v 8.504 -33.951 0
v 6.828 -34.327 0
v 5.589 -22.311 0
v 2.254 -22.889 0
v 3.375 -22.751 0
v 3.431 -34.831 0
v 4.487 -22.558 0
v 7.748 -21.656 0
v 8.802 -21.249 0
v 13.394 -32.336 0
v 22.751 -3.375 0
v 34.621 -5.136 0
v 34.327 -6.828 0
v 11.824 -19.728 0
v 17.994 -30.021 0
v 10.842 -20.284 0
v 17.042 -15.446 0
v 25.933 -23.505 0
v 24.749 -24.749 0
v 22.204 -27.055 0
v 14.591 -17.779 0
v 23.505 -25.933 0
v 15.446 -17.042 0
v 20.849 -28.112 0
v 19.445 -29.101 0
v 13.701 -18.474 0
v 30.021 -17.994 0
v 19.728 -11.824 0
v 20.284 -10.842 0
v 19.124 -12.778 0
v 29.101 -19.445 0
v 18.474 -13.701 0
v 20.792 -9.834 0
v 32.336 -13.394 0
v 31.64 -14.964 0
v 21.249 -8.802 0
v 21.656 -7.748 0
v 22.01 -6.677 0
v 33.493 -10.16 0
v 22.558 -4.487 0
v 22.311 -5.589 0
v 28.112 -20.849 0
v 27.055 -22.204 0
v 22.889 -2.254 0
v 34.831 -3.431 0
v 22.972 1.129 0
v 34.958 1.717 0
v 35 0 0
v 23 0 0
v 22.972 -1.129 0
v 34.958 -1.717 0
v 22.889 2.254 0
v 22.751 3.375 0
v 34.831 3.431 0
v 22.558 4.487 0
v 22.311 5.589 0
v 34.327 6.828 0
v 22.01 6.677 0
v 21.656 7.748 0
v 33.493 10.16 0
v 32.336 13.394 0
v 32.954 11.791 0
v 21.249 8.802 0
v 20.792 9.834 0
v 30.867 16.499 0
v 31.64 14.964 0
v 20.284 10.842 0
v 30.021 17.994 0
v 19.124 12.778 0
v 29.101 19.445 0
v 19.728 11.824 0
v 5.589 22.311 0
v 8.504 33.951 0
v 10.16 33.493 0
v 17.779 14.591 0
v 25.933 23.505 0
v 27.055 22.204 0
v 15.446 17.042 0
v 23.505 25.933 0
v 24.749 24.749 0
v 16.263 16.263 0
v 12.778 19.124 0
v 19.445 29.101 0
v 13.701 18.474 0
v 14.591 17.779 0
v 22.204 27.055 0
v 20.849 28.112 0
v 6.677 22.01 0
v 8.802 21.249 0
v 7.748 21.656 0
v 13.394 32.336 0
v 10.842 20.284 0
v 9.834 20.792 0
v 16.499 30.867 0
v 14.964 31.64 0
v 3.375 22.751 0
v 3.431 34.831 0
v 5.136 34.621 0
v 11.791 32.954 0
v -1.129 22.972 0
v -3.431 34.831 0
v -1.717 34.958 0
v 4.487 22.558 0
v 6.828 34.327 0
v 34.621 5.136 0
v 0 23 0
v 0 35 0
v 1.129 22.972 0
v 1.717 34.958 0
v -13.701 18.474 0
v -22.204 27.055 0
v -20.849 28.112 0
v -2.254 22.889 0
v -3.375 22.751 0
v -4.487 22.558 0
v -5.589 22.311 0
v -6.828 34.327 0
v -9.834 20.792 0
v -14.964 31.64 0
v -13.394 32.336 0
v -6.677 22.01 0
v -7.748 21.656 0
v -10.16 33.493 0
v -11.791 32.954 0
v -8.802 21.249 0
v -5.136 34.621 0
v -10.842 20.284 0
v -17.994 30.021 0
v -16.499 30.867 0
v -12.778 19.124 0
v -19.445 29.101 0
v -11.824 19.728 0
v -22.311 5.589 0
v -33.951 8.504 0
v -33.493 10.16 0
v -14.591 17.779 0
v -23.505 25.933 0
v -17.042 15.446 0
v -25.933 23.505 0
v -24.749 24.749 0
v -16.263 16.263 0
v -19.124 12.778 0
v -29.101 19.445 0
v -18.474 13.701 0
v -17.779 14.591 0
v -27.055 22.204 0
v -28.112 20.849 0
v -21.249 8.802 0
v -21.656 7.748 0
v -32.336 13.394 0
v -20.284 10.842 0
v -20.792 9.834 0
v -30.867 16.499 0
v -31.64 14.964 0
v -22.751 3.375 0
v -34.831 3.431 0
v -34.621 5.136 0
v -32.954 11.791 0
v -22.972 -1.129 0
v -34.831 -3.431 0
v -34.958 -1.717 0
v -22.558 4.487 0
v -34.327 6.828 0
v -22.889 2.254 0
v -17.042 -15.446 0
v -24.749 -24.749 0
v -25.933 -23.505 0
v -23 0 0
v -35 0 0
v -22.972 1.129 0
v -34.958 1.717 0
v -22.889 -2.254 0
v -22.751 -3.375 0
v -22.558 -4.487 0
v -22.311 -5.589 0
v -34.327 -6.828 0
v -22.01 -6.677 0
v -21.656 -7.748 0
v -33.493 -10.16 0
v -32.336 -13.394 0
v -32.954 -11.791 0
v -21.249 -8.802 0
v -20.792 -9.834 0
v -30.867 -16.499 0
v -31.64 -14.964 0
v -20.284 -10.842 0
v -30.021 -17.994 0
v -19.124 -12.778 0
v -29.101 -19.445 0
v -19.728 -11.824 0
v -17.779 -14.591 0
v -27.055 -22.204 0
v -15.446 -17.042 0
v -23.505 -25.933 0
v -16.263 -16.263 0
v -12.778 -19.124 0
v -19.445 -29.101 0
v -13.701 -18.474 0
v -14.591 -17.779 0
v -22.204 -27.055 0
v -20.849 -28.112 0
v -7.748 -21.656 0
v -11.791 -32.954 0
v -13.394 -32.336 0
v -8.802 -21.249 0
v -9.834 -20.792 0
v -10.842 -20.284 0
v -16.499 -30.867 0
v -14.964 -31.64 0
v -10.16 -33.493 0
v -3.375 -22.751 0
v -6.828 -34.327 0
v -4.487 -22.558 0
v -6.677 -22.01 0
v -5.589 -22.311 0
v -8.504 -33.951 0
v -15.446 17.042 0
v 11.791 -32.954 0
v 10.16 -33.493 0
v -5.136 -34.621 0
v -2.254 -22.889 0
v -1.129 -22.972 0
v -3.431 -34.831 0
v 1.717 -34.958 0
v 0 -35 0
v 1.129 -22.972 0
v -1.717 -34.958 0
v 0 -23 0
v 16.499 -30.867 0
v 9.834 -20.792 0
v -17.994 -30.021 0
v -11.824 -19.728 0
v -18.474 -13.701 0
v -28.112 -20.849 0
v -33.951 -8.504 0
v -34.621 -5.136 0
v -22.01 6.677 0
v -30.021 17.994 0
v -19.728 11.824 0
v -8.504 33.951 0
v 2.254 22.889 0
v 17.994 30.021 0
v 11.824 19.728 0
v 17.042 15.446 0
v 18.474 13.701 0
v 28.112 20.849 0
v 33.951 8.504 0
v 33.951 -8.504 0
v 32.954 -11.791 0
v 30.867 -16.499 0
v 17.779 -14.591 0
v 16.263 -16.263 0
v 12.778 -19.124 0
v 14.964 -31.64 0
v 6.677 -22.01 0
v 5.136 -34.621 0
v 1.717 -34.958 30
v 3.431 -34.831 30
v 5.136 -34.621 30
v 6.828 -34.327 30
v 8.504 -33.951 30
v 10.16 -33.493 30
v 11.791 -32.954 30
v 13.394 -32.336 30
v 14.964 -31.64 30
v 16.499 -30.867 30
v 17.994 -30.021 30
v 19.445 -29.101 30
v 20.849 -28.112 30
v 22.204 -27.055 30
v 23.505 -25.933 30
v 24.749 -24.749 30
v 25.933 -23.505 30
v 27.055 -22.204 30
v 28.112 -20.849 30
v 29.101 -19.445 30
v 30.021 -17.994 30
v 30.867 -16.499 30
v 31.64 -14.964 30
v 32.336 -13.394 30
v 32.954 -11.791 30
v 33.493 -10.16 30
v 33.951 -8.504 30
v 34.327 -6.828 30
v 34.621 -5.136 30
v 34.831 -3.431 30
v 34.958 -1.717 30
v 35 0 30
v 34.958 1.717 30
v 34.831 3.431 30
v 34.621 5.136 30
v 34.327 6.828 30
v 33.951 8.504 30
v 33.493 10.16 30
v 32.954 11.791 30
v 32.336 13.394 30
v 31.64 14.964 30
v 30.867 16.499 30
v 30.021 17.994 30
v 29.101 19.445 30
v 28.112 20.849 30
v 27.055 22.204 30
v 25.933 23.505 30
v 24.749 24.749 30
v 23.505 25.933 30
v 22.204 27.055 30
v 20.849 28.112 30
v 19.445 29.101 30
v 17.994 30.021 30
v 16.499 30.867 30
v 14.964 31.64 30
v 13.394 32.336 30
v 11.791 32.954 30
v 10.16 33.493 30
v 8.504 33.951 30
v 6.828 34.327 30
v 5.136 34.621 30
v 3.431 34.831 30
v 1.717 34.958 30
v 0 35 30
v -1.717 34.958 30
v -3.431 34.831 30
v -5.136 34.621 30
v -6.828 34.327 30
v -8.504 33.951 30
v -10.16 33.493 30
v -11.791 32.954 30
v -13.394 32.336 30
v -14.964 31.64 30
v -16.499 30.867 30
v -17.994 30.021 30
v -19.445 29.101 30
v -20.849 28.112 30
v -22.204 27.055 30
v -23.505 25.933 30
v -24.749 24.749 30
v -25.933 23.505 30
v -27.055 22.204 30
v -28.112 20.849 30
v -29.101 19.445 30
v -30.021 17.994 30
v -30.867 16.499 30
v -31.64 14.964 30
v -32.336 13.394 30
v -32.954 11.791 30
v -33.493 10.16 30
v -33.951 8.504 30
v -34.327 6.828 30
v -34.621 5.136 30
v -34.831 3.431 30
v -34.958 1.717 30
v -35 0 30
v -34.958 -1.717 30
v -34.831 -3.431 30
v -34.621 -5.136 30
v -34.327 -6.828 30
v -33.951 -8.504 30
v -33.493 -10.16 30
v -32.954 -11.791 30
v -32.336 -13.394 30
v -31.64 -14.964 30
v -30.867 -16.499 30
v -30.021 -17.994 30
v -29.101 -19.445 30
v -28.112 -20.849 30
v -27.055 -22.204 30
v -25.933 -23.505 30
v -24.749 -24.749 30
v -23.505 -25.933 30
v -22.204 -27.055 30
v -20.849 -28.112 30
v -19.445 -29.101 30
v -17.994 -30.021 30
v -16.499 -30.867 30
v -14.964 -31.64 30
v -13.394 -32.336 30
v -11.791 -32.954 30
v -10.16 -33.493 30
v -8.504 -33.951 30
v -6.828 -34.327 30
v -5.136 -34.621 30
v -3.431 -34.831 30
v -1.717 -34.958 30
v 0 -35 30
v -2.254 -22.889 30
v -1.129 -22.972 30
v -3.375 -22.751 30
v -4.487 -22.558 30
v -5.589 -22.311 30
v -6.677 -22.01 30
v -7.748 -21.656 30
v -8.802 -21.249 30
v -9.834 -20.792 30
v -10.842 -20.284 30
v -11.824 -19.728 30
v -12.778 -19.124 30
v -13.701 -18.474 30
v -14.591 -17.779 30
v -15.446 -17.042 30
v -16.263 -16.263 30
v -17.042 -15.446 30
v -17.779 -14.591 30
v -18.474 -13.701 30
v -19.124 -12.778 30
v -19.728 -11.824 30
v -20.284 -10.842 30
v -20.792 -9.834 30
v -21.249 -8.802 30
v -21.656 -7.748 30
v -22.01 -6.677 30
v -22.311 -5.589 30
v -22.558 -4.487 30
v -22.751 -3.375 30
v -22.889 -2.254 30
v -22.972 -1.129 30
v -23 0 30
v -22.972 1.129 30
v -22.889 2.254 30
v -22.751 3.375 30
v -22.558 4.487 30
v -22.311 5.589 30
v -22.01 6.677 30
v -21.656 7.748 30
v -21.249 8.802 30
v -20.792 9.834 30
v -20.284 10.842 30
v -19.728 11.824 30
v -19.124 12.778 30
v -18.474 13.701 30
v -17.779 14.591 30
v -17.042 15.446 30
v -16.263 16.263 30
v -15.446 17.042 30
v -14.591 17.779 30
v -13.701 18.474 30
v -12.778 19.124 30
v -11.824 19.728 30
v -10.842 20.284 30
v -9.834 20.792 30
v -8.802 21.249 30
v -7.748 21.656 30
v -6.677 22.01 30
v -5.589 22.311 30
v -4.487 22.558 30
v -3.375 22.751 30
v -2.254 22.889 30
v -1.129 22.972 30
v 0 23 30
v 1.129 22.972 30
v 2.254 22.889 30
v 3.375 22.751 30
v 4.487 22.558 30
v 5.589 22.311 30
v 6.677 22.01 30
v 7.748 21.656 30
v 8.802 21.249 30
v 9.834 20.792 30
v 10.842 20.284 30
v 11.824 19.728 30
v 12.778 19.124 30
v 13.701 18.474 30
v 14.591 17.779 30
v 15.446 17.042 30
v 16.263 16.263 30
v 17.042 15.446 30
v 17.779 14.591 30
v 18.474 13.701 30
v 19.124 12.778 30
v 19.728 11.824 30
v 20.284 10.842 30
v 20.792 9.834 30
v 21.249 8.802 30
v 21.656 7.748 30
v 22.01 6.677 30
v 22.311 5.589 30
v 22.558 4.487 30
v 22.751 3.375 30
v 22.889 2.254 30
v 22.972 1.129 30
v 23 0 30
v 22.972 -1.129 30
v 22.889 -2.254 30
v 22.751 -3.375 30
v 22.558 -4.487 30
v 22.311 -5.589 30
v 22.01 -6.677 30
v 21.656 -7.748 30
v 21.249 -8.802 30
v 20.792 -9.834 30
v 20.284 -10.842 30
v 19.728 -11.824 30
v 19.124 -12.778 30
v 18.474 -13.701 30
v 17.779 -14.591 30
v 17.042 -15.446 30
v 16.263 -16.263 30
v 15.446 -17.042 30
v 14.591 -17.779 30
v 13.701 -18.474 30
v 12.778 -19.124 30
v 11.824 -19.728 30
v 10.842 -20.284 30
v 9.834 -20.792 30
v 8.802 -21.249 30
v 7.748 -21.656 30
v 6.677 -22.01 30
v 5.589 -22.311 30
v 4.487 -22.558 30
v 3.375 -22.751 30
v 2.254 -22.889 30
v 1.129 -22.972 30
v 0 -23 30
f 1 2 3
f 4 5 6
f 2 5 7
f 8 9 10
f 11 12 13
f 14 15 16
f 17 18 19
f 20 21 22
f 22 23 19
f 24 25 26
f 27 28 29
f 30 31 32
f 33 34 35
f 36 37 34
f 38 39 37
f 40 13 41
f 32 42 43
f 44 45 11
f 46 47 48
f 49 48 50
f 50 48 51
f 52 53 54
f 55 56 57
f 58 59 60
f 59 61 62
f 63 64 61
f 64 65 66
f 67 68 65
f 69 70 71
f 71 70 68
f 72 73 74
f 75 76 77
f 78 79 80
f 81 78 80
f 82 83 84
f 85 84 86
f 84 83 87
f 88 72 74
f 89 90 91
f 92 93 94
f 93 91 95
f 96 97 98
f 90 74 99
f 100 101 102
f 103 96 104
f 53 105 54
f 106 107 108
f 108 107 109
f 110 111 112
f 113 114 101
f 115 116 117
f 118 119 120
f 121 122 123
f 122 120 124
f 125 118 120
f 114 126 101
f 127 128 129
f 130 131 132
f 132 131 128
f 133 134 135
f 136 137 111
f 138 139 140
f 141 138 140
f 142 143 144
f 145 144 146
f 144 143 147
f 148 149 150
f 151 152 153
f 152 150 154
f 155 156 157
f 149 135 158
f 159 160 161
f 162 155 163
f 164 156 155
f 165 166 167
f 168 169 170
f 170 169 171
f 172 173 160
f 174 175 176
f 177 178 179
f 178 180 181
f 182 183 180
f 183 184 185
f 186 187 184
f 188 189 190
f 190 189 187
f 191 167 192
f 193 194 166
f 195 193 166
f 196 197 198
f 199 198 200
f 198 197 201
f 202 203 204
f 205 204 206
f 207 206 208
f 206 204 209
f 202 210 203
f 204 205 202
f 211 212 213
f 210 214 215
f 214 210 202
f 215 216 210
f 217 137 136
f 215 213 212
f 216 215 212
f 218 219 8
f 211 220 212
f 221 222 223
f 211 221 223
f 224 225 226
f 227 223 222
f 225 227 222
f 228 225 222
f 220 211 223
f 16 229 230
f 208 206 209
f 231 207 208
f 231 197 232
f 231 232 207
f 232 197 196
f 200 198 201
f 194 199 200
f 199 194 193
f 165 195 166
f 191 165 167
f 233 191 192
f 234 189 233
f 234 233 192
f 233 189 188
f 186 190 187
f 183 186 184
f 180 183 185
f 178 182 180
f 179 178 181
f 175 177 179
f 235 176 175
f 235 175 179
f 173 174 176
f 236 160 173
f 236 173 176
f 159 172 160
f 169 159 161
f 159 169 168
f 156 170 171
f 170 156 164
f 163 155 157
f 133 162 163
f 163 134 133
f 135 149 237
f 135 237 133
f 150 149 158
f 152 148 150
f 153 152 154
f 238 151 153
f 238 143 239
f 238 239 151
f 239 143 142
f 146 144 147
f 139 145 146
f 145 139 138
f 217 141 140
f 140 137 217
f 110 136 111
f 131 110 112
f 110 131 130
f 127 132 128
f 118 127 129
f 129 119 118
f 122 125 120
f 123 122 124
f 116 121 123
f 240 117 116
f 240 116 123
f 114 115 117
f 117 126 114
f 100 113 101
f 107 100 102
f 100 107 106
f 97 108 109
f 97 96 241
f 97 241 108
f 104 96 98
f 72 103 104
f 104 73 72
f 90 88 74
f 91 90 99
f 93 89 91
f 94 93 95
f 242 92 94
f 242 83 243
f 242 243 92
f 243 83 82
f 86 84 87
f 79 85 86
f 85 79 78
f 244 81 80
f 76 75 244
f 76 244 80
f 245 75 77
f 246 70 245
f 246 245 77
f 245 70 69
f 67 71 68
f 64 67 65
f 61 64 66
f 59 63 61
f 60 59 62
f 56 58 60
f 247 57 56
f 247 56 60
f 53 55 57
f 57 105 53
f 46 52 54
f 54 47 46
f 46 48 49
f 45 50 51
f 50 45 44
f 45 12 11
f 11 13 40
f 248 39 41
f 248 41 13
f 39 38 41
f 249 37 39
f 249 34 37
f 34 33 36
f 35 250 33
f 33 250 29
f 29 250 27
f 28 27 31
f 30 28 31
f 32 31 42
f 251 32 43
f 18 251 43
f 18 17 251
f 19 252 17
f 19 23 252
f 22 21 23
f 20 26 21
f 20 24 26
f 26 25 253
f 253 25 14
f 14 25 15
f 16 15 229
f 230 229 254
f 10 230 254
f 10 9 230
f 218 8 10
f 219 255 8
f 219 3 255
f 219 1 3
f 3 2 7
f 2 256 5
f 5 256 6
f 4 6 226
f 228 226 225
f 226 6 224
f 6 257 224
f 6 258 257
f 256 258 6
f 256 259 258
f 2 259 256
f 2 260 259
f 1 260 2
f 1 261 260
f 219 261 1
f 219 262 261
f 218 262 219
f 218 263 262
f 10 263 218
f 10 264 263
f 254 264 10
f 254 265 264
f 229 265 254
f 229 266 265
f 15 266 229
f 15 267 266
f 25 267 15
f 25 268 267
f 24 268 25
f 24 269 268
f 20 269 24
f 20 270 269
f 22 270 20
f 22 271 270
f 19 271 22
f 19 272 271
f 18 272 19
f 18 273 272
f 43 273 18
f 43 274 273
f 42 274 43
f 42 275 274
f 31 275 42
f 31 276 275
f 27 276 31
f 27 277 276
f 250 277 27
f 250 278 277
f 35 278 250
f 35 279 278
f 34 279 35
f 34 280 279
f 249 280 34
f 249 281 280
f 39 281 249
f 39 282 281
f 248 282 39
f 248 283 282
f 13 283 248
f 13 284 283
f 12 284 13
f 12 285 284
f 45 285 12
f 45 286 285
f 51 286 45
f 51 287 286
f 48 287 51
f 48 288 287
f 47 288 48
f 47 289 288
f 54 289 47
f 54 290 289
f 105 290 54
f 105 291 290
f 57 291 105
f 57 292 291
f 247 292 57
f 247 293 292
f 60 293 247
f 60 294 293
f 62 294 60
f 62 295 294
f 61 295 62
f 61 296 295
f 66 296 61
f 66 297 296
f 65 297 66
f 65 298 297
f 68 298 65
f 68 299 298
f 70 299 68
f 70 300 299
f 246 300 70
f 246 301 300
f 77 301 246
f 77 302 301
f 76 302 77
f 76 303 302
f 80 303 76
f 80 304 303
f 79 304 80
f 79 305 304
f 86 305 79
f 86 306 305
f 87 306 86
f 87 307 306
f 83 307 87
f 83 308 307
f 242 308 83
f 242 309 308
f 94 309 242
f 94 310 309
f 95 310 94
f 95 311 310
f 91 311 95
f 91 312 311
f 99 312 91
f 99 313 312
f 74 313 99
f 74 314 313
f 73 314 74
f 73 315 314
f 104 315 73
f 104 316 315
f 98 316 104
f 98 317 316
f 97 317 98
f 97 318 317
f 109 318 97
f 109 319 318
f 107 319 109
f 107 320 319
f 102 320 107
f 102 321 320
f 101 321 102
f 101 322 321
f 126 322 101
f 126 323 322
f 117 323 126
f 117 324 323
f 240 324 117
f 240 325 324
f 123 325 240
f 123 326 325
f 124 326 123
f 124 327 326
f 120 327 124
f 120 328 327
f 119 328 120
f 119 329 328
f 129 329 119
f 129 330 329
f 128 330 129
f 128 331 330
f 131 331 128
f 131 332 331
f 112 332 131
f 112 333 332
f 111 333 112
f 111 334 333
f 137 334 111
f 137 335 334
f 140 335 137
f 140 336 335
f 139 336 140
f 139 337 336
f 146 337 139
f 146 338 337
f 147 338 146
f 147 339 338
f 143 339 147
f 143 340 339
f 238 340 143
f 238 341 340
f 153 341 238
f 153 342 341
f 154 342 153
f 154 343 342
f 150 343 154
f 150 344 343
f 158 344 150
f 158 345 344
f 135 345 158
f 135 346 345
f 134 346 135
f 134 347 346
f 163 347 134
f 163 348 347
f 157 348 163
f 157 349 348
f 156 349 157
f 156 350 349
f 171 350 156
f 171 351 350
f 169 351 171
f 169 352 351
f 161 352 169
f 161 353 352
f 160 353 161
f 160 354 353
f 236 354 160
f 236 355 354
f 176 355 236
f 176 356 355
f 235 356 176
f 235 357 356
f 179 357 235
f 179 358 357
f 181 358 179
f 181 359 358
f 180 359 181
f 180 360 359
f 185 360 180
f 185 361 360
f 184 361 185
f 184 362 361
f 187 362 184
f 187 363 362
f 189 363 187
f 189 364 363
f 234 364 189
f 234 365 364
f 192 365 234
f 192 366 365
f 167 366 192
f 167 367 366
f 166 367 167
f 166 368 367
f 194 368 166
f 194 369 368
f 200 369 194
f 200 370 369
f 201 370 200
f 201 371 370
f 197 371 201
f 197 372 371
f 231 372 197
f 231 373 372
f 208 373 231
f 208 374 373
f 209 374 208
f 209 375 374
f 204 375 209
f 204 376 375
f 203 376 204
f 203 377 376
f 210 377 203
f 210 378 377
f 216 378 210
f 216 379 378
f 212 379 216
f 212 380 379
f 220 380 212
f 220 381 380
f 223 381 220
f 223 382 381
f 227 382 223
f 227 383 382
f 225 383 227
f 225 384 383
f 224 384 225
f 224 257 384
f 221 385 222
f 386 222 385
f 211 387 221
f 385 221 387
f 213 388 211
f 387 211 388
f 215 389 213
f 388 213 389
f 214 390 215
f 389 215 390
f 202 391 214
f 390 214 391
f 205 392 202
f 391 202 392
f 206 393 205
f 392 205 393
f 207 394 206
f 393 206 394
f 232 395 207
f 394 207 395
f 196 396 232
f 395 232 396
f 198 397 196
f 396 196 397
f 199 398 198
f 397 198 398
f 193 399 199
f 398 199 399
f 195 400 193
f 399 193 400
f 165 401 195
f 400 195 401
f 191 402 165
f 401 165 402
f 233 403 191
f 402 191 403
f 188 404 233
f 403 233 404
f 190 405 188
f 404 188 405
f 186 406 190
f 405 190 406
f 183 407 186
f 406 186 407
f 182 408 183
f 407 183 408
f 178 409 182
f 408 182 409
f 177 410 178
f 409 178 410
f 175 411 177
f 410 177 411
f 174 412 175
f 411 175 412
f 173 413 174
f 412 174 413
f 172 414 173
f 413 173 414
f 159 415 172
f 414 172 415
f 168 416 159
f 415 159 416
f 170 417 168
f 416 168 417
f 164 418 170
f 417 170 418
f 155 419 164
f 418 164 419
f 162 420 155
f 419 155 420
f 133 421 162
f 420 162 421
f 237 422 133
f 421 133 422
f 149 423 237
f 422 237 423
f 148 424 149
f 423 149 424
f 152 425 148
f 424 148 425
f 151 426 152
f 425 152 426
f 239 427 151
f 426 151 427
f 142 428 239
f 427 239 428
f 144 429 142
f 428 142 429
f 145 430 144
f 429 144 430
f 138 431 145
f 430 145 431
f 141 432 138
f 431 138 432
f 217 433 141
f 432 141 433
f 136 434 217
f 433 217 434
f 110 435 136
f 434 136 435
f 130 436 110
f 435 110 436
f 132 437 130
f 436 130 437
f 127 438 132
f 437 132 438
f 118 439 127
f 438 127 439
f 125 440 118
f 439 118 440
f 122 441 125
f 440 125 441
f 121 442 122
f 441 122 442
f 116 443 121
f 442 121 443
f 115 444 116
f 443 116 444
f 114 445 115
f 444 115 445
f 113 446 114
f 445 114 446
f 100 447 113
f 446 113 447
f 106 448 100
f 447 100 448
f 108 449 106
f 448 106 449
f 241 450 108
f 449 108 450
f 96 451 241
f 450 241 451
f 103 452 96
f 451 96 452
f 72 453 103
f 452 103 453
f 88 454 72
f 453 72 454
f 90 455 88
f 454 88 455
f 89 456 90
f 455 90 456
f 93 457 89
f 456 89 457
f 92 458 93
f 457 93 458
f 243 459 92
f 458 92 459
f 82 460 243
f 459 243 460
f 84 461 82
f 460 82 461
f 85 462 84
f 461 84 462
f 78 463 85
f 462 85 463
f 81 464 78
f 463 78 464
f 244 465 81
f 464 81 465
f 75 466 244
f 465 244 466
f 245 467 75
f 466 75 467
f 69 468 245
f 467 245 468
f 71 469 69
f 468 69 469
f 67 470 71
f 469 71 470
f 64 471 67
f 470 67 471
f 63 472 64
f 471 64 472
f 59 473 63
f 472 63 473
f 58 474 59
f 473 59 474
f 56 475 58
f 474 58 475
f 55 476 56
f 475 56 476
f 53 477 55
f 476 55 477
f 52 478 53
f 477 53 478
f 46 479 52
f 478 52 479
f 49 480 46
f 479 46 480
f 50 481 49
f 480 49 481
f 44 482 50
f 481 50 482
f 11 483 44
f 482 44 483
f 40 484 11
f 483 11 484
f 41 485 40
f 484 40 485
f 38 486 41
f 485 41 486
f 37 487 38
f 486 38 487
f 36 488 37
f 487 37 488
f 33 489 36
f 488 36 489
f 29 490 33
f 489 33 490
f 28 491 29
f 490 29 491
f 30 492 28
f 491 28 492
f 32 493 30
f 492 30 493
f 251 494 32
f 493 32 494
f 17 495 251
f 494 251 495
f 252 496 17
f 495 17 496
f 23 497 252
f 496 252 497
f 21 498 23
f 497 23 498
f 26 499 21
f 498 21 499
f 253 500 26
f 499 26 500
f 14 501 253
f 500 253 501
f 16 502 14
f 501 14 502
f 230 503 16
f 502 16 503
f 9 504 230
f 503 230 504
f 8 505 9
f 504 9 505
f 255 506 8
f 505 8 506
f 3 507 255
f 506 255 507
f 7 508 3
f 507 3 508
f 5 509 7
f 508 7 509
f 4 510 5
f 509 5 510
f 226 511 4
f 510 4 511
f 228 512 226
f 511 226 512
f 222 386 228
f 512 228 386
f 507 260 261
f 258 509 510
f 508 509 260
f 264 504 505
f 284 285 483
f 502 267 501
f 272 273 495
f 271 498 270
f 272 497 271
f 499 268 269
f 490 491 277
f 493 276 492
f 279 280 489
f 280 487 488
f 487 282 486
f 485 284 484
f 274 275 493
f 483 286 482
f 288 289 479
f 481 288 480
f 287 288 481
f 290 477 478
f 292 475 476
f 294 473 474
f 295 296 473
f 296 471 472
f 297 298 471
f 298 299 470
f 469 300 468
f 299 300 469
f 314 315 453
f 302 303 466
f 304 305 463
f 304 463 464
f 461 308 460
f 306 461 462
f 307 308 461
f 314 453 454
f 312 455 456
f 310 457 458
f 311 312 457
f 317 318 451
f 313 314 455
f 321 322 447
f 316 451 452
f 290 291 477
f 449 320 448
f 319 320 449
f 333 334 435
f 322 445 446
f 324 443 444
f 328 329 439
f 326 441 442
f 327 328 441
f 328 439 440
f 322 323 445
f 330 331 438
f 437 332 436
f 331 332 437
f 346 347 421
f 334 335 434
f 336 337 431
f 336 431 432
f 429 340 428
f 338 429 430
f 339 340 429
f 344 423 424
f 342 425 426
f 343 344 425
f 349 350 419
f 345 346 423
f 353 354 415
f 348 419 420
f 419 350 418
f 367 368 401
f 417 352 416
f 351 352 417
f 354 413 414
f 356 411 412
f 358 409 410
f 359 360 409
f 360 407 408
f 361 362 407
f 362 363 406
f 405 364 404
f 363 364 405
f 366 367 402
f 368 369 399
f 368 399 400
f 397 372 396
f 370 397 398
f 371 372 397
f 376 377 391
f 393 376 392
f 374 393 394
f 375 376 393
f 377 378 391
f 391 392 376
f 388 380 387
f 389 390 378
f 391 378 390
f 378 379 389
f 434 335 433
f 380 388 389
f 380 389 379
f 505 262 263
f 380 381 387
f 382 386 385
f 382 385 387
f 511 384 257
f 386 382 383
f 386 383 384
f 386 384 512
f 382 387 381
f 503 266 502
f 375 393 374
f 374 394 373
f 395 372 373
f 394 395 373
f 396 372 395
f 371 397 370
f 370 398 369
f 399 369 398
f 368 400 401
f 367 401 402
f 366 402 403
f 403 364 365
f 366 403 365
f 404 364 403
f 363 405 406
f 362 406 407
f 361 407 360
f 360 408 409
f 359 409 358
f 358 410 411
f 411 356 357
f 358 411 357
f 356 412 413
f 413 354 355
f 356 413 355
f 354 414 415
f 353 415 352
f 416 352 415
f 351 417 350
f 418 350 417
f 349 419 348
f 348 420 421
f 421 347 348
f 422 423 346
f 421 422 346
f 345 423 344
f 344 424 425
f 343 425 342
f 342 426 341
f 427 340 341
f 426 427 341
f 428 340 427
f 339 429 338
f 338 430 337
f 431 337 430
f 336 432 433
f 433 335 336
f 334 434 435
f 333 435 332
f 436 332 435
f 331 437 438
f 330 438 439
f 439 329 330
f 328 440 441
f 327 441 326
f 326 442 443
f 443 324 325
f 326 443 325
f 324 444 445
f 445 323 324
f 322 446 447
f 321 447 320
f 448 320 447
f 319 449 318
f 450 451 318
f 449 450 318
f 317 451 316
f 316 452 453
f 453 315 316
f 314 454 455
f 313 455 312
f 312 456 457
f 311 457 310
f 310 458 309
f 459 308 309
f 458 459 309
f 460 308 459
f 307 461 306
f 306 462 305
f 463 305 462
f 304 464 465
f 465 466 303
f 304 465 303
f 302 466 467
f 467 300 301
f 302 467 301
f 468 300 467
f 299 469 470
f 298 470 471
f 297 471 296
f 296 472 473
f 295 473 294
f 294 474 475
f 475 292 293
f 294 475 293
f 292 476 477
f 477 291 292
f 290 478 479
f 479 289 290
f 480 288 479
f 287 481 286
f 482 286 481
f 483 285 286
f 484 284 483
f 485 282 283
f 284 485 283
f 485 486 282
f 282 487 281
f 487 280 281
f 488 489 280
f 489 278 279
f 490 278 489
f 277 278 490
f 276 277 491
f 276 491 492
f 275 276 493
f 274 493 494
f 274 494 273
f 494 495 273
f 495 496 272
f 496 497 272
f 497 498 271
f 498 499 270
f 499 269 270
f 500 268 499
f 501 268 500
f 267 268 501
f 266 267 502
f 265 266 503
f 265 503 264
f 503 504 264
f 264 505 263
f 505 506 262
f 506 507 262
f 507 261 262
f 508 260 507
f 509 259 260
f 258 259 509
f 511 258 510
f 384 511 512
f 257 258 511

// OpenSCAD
linear_extrude(30) {
    difference() {
        circle(d=70, $fn=128);
        circle(d=46, $fn=128);
    }
}

    
